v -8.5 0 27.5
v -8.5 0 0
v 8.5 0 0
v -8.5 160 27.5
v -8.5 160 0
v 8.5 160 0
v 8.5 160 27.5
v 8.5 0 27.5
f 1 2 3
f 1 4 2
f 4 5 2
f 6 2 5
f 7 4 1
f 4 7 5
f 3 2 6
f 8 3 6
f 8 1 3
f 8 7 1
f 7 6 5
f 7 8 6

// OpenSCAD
// Black Exacto-style craft knife, 17 mm
// Geometry follows the holder clearance profile. Its dimensions describe the pocket used in the source design. Physical tool dimensions and fit have yet to be measured.
// Units: mm
$fn = 64;
union() {
    translate([0, 0.0, 0]) rotate([0, 0, 0])
        linear_extrude(height=27.5) polygon(points=[[-8.5, 0], [-8.5, 160], [8.5, 160], [8.5, 0]]);
}
